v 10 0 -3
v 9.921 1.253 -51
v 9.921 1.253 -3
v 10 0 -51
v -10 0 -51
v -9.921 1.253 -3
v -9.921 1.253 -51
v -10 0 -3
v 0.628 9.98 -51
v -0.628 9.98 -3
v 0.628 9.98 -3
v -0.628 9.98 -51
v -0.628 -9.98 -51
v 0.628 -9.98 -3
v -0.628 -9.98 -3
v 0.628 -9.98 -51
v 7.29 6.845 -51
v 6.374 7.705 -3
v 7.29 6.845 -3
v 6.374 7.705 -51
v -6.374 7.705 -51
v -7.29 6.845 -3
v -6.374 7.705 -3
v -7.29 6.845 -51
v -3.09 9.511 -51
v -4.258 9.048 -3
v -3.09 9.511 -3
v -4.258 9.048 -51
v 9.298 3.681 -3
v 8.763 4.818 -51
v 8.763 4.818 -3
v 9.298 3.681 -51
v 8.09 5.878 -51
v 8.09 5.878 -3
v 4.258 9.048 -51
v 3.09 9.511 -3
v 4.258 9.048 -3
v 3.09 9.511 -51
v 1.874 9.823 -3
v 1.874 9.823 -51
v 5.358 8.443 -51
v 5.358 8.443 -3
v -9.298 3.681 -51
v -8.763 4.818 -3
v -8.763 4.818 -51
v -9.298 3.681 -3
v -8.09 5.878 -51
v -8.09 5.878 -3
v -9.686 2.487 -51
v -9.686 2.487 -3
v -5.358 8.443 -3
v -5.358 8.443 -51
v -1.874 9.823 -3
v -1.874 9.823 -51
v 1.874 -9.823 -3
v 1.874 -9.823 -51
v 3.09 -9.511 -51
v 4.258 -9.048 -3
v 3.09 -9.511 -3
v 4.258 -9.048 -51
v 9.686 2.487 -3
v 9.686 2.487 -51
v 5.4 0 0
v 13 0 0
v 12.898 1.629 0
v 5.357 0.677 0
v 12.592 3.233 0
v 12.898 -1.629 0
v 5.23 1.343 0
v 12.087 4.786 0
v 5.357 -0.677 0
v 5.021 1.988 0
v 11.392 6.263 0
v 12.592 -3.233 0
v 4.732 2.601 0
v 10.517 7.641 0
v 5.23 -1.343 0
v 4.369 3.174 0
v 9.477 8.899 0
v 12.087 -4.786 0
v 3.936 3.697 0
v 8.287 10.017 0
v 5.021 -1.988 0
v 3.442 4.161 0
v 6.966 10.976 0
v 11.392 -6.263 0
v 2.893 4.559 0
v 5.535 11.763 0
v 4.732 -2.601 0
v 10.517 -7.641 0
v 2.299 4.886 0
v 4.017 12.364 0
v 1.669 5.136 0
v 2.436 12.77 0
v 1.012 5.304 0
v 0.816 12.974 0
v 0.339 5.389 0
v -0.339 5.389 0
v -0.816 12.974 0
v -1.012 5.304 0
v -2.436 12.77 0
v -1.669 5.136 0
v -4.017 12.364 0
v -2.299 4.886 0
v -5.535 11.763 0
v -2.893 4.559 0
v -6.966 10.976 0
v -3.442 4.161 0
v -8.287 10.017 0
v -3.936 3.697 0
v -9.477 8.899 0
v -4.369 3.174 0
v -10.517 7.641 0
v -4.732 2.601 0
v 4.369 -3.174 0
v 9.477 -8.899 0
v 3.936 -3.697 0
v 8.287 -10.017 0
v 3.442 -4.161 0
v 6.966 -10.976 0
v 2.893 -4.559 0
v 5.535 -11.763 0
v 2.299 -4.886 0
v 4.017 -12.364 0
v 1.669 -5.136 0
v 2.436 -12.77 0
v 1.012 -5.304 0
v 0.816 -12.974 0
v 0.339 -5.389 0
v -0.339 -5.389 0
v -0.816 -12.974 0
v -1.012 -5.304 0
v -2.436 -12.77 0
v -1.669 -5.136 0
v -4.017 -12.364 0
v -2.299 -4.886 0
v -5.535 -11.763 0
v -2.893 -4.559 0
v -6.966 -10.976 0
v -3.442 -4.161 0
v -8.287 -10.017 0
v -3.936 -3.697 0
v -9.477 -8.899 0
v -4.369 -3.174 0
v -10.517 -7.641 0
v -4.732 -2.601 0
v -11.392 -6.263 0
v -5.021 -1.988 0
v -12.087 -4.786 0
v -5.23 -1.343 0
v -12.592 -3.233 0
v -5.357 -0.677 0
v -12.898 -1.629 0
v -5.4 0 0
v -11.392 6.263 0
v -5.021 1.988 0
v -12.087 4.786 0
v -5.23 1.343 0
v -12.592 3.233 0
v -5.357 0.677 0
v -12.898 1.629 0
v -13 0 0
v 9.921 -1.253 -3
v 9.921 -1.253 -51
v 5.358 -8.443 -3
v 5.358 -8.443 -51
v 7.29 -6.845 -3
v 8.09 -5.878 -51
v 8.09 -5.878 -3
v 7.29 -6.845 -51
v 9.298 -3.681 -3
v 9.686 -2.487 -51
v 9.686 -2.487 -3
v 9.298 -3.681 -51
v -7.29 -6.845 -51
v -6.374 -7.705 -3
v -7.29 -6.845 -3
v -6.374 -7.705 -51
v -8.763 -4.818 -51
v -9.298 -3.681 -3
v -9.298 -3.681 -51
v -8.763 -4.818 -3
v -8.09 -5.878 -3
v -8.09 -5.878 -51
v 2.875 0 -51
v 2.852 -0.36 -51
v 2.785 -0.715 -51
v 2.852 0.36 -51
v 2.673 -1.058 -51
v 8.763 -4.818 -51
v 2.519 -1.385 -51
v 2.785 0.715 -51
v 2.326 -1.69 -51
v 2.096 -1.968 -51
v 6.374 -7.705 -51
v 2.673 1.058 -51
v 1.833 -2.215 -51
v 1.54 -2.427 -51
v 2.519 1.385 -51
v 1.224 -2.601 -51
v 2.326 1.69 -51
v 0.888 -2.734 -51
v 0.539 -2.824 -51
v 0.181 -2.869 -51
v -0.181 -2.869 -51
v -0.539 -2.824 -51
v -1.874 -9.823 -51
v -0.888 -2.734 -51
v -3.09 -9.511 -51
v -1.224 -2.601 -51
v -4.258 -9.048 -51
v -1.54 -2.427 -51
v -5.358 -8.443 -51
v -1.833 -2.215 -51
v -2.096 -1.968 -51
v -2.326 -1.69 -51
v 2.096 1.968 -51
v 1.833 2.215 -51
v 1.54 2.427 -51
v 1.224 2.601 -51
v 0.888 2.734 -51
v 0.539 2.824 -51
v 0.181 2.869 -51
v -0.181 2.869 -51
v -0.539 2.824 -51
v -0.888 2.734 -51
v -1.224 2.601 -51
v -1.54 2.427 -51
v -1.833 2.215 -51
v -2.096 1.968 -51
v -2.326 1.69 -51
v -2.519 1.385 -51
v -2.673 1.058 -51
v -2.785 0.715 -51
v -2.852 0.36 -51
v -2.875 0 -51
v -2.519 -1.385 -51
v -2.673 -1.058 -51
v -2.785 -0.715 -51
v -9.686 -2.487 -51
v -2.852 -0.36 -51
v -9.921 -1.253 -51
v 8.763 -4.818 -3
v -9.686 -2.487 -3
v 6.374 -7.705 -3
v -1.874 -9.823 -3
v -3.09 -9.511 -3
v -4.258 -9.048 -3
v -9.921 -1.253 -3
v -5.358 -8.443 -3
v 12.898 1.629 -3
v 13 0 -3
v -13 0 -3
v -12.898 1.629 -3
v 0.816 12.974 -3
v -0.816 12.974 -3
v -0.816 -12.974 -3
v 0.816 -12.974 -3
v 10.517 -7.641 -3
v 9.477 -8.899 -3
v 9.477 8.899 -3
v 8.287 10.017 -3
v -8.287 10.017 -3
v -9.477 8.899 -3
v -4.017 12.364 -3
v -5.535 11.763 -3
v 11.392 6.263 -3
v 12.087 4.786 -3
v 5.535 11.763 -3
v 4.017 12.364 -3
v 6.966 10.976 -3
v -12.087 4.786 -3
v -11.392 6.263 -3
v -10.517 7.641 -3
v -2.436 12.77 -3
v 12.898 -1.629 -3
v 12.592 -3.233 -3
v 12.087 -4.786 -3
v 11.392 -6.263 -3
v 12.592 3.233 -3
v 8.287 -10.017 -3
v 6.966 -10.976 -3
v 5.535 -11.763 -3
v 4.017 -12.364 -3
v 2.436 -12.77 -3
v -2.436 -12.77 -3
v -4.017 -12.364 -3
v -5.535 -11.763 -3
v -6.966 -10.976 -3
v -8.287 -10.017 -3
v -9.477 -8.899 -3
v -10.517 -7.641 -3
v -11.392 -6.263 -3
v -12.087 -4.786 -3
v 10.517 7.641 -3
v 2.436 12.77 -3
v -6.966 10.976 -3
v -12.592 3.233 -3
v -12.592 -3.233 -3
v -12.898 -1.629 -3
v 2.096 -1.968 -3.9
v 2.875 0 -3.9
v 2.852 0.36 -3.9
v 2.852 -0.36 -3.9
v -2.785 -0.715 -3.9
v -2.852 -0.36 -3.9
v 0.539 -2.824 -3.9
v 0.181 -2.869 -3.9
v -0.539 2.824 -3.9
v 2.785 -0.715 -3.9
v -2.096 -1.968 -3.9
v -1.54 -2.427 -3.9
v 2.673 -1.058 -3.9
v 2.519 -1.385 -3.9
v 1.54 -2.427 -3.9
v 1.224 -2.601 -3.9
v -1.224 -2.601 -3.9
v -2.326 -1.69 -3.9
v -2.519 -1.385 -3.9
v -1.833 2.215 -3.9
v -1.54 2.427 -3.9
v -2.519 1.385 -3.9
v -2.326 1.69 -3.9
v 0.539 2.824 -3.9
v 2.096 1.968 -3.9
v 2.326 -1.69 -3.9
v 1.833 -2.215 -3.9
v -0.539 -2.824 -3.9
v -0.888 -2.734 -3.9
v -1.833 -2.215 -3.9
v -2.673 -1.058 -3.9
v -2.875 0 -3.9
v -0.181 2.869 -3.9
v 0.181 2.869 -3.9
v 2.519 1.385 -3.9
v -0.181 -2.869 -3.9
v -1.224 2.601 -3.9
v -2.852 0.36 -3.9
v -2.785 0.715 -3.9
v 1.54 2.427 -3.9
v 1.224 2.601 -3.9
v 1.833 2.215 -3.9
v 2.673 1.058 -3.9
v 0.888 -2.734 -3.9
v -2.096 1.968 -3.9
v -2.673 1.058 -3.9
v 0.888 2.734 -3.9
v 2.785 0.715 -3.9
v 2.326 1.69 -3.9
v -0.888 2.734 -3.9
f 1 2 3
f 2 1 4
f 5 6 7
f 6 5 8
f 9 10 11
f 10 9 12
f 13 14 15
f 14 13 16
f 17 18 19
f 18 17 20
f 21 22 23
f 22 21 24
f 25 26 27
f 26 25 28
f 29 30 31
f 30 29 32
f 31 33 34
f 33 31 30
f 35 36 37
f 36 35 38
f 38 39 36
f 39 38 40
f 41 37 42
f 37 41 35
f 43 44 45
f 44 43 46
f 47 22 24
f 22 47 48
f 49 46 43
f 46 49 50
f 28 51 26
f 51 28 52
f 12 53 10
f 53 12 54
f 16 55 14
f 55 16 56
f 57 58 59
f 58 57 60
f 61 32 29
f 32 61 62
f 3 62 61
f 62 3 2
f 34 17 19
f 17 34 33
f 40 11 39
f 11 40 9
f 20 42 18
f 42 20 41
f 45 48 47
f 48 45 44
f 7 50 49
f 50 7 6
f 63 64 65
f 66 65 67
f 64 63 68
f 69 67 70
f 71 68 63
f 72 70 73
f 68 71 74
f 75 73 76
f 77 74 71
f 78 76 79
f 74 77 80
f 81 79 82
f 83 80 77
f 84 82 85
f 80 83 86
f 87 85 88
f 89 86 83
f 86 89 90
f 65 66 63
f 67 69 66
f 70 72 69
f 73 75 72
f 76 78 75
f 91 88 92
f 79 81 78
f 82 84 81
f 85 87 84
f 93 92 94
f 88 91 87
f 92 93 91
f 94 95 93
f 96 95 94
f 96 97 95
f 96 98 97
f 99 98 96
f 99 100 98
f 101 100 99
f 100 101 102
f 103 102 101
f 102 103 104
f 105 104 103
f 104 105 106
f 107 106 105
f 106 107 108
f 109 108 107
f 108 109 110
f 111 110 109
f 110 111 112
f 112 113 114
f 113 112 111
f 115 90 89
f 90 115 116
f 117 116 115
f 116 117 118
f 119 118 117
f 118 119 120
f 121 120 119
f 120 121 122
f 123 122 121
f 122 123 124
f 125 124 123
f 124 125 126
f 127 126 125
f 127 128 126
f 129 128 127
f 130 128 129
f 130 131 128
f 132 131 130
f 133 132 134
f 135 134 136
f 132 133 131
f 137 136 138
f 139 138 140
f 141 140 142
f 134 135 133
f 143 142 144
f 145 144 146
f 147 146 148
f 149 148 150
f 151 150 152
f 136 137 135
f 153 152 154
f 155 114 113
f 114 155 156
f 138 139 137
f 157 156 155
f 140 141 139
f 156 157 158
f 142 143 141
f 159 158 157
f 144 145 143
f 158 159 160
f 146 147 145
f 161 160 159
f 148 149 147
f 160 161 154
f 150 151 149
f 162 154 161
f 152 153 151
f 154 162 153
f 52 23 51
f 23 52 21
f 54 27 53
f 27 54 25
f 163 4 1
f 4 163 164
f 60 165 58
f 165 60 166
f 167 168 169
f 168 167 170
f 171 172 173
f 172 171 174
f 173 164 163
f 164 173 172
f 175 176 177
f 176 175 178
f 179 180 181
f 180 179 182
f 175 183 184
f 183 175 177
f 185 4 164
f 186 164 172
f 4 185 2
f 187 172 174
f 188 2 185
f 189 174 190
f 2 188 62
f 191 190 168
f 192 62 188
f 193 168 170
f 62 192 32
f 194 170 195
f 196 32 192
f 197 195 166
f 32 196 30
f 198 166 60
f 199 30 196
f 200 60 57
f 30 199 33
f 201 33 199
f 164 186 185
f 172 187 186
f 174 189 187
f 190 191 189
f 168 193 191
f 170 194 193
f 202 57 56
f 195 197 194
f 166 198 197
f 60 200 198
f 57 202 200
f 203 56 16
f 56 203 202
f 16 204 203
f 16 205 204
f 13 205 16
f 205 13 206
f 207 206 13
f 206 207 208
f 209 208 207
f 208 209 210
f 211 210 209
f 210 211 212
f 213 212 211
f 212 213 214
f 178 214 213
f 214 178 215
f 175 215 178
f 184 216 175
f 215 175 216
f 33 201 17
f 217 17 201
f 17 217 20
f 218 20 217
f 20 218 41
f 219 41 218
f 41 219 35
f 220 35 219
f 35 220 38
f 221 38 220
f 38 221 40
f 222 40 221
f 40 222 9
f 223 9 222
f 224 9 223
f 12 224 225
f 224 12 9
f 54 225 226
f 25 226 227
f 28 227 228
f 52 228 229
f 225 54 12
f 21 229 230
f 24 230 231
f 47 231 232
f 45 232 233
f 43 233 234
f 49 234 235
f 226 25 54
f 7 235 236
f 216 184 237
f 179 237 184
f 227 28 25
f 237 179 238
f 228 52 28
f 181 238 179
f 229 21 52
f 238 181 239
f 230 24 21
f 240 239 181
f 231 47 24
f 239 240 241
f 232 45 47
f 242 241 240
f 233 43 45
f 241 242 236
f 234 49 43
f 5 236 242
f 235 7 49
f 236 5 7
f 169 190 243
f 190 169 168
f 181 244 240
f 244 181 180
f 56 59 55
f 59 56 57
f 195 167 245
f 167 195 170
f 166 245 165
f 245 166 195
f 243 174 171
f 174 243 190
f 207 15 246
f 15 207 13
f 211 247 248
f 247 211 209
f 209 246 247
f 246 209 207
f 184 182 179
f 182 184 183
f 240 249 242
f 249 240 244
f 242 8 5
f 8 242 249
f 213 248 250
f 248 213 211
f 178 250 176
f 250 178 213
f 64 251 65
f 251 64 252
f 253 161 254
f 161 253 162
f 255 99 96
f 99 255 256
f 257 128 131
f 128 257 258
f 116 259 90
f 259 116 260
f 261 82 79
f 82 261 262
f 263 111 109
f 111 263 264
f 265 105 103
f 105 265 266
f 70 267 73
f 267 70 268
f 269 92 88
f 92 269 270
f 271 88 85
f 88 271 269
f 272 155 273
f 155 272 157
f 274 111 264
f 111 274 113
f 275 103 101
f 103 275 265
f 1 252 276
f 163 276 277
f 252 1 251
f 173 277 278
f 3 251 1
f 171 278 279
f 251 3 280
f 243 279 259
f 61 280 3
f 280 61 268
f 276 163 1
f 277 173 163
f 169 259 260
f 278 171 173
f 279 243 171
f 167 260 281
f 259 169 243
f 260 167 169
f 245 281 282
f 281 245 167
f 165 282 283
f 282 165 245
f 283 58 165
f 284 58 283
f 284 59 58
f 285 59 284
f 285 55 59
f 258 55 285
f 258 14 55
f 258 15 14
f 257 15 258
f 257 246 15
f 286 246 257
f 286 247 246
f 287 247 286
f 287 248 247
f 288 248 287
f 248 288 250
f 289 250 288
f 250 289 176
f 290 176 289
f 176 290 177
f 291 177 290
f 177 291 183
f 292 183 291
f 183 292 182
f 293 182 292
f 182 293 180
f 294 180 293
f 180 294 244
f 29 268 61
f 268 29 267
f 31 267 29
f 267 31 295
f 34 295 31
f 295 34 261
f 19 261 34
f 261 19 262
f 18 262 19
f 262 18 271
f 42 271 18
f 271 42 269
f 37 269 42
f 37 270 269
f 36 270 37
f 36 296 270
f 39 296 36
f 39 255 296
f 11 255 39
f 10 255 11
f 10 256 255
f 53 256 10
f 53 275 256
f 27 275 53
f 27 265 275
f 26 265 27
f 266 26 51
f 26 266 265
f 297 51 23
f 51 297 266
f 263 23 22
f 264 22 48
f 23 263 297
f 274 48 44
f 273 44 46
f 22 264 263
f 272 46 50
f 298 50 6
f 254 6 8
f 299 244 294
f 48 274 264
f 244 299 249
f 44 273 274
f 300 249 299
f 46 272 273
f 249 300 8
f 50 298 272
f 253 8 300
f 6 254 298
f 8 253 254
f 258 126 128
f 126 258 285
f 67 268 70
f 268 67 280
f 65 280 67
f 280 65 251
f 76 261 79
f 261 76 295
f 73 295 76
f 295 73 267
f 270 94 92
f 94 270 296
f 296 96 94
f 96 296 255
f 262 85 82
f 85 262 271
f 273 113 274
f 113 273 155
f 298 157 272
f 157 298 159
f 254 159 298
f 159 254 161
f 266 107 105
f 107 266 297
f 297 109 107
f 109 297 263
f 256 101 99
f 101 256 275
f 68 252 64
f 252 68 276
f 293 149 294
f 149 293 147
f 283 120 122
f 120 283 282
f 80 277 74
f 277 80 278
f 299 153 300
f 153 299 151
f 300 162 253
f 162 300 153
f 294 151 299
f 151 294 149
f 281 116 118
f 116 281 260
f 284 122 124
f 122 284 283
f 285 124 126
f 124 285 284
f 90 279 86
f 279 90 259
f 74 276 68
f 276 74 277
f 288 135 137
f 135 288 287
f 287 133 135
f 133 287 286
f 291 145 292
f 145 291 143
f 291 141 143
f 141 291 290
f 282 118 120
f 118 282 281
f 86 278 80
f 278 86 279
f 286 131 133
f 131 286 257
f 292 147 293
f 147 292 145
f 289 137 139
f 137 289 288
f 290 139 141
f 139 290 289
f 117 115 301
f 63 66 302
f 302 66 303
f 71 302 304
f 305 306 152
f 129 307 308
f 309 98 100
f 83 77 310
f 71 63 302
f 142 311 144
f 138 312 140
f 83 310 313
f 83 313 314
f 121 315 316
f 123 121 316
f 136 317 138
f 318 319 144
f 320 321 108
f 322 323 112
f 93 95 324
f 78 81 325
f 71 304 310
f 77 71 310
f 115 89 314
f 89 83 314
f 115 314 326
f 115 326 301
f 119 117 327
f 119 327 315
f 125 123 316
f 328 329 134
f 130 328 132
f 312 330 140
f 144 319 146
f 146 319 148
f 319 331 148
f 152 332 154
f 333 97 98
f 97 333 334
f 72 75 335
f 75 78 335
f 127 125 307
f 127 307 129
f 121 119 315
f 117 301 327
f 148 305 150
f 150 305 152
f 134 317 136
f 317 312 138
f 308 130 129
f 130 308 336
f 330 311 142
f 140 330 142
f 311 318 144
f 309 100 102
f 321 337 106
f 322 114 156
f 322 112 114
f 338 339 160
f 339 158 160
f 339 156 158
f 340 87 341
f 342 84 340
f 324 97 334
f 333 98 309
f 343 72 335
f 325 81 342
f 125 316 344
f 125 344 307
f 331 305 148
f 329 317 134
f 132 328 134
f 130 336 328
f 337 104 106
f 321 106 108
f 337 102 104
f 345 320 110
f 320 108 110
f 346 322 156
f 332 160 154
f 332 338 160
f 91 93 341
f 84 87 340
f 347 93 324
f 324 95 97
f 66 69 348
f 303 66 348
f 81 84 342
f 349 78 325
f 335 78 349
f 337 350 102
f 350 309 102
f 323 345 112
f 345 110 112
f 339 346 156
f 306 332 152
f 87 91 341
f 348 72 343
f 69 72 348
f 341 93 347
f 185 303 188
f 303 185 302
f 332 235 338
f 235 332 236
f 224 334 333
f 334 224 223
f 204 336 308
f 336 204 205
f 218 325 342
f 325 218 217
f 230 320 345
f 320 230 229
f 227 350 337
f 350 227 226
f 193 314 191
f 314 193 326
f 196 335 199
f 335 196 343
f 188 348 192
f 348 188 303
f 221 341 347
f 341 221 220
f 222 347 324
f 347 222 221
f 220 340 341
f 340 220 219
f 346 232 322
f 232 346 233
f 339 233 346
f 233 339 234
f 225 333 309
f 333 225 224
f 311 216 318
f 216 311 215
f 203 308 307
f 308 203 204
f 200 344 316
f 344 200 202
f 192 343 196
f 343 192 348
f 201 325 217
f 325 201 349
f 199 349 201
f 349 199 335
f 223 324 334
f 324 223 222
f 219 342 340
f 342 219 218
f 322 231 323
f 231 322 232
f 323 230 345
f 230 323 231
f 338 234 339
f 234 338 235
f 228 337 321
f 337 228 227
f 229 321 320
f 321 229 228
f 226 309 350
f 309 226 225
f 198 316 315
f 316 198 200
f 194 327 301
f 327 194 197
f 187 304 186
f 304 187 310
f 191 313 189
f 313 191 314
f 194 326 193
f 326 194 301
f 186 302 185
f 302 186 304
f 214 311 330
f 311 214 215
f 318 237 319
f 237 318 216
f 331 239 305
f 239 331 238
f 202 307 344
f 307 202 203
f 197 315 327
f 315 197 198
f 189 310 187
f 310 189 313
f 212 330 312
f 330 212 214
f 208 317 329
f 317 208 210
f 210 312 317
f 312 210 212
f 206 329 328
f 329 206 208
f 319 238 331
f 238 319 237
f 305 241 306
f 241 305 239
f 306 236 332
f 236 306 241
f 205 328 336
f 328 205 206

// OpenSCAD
$fn = 50;


difference() {
	union() {
		translate(v = [0, 0, -51.0000000000]) {
			cylinder(h = 51, r = 10.0000000000);
		}
		translate(v = [0, 0, -3.0000000000]) {
			cylinder(h = 3, r = 13.0000000000);
		}
	}
	union() {
		translate(v = [0, 0, 0]) {
			rotate(a = [0, 0, 0]) {
				difference() {
					union() {
						#translate(v = [0, 0, -51.0000000000]) {
							cylinder(h = 51, r = 2.6000000000);
						}
						#translate(v = [0, 0, -3.9000000000]) {
							cylinder(h = 3.9000000000, r = 10.0000000000, r1 = 2.8750000000, r2 = 5.4000000000);
						}
						#translate(v = [0, 0, -51.0000000000]) {
							cylinder(h = 51, r = 2.8750000000);
						}
						#translate(v = [0, 0, -51.0000000000]) {
							cylinder(h = 51, r = 2.6000000000);
						}
					}
					union();
				}
			}
		}
	}
}
